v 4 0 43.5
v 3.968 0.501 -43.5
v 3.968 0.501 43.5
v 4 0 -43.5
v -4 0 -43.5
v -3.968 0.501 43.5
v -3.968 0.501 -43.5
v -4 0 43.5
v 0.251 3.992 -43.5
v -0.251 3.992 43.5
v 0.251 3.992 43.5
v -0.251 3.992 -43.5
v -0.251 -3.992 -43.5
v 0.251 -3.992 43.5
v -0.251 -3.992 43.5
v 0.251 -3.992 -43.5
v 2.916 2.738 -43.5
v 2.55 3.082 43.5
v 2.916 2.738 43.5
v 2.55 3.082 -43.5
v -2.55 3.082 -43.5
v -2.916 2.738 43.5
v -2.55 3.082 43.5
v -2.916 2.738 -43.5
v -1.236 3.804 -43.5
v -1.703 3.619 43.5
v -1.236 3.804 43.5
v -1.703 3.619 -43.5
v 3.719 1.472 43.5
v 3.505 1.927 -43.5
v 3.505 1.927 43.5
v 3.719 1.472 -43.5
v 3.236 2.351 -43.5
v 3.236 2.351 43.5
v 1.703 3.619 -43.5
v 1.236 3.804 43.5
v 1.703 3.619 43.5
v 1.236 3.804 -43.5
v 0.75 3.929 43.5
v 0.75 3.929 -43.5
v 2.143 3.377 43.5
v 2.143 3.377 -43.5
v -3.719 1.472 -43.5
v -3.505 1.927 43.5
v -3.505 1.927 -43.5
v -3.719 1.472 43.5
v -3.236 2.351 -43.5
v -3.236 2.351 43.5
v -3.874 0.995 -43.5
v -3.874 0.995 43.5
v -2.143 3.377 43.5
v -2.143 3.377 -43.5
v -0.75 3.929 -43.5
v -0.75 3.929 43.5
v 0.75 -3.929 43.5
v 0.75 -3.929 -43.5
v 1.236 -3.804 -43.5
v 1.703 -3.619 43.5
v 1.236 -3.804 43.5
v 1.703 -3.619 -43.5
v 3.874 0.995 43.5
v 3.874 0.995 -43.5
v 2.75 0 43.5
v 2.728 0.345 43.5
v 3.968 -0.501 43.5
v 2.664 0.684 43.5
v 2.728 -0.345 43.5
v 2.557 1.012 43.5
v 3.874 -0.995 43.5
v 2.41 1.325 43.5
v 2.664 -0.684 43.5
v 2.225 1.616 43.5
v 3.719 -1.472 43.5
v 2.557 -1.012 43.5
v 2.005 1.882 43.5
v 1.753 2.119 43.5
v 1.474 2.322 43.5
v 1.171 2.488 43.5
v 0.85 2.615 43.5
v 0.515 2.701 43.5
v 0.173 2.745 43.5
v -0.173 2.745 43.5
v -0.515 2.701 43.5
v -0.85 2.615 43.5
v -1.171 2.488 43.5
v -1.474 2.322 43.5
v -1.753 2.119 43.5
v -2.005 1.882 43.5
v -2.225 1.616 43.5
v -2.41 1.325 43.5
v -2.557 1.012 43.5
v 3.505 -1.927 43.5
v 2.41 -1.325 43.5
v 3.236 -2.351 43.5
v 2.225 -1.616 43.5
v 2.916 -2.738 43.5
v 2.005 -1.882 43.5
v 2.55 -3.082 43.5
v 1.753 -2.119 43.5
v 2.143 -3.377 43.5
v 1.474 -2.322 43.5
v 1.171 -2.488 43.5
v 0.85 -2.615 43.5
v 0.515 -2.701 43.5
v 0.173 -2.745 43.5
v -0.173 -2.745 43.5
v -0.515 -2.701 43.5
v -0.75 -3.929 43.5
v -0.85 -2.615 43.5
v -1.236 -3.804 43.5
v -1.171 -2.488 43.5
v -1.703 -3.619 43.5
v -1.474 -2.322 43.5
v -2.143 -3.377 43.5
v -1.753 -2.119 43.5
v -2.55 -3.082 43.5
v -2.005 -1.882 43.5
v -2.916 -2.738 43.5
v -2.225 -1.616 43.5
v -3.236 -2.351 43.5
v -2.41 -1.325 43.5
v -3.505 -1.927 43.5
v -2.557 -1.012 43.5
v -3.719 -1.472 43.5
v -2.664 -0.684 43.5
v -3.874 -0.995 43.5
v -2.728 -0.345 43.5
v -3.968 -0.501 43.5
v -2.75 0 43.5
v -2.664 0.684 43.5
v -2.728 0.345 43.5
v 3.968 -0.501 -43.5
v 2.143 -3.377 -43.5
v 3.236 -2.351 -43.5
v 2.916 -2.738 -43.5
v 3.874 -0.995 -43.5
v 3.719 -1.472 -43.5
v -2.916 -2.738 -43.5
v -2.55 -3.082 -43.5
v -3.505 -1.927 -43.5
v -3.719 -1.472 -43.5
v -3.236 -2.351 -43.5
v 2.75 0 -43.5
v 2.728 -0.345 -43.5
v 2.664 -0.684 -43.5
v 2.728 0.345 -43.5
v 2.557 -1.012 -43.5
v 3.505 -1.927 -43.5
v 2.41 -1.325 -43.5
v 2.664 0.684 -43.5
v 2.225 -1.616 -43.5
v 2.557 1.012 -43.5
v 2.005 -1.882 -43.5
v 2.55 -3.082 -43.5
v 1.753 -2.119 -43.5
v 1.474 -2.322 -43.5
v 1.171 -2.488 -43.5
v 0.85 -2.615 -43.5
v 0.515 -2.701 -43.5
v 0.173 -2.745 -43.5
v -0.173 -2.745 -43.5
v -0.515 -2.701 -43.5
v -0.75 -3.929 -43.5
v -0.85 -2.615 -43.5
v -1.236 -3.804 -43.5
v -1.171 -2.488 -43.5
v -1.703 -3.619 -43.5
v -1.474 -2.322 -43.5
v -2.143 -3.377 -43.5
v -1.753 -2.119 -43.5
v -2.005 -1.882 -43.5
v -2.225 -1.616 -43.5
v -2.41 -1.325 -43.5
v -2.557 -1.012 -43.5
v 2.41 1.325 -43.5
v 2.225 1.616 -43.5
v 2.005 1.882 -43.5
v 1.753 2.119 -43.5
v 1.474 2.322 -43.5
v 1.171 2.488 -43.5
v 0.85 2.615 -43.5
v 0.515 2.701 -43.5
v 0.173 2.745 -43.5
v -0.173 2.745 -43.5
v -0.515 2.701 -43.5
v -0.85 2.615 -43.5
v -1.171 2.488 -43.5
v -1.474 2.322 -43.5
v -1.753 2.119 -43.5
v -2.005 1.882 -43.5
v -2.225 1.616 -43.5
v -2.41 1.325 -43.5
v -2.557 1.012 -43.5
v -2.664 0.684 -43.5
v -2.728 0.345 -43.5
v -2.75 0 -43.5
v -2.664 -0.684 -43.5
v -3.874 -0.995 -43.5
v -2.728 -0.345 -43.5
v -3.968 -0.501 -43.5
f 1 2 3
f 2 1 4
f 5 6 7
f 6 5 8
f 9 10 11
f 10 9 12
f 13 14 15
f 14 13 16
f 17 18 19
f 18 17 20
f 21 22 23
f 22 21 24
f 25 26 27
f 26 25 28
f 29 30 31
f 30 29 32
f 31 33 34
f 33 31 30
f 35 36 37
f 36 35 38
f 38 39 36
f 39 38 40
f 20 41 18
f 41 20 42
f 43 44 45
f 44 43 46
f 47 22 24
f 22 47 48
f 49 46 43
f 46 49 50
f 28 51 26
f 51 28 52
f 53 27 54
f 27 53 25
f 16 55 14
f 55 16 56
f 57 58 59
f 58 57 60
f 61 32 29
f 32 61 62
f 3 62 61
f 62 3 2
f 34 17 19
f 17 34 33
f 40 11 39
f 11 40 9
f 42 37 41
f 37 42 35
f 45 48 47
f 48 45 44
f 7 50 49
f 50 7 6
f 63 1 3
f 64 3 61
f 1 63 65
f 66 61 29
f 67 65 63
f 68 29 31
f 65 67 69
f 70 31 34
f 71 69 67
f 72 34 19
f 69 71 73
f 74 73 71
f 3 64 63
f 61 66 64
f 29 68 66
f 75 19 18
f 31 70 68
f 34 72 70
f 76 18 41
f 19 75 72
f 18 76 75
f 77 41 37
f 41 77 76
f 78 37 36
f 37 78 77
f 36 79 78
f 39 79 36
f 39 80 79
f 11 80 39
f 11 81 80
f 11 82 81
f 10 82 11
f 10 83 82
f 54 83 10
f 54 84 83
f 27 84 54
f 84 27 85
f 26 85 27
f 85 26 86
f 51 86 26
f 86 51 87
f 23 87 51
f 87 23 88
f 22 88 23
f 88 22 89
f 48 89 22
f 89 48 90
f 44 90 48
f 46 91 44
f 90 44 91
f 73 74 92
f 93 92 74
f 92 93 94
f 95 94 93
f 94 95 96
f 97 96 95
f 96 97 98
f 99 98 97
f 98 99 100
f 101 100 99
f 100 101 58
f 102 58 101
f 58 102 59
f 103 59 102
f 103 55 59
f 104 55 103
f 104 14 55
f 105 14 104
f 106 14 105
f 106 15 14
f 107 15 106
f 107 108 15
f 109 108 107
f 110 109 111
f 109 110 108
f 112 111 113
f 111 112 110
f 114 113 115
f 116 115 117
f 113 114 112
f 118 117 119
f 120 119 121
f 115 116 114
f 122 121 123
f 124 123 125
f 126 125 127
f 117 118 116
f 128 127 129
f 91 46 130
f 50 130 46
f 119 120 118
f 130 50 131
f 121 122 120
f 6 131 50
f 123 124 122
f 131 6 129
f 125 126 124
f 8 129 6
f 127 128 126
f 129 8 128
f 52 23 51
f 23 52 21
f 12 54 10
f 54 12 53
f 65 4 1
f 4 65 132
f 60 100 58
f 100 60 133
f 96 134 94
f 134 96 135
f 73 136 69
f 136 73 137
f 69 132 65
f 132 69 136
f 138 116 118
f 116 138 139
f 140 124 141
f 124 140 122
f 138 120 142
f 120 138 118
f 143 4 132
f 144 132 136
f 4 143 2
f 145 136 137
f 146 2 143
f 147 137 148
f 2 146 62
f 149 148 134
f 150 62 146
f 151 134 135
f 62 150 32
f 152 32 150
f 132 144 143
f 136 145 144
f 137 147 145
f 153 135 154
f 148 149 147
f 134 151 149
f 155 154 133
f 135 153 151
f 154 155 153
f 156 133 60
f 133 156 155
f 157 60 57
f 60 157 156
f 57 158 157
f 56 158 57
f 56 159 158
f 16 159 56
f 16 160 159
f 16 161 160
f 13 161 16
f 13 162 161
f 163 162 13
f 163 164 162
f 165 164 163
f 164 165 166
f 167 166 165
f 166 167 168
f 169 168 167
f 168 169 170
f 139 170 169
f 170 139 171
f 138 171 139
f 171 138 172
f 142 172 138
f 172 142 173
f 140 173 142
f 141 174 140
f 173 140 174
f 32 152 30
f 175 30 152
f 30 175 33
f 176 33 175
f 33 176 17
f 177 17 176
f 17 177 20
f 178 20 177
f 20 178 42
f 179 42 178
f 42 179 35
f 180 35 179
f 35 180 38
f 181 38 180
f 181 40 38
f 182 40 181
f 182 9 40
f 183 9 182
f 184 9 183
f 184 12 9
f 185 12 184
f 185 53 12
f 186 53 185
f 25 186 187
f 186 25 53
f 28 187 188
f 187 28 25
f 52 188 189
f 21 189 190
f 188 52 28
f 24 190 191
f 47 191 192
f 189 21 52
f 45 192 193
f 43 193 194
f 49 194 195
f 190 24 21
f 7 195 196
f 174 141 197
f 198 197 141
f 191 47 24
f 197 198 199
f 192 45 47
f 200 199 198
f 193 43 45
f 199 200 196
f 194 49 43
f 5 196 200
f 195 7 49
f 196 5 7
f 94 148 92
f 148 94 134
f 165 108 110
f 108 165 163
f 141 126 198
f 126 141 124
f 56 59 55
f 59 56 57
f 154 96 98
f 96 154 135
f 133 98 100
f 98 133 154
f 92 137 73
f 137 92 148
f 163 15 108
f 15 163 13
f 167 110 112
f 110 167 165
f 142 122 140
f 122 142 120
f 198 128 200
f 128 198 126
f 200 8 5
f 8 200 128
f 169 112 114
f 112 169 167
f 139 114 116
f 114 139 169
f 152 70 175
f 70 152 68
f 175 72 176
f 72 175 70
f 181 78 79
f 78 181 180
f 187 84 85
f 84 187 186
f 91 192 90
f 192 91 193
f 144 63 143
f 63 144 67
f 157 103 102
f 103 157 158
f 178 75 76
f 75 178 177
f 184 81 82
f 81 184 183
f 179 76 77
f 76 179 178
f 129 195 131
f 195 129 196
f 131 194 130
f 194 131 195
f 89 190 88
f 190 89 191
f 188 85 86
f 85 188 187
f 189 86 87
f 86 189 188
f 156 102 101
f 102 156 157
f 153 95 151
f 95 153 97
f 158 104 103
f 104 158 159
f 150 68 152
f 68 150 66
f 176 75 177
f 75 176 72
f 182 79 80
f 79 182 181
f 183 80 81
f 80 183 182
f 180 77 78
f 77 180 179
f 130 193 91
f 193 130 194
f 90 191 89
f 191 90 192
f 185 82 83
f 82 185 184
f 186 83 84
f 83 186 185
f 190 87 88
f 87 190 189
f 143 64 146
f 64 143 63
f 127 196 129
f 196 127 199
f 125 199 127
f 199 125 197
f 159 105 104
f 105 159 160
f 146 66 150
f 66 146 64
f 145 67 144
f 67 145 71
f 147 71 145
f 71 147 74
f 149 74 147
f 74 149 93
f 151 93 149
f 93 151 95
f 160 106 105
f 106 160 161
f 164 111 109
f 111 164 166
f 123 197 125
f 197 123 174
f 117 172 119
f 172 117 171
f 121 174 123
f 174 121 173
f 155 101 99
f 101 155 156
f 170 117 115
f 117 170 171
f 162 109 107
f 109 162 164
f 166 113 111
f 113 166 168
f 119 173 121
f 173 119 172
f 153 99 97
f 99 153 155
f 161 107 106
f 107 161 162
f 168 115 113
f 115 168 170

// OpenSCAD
$fn = 50;


difference() {
	union() {
		translate(v = [0, 0, -43.5000000000]) {
			cylinder(h = 87, r = 4.0000000000);
		}
	}
	union() {
		translate(v = [0, 0, -100.0000000000]) {
			cylinder(h = 200, r = 2.7500000000);
		}
	}
}
